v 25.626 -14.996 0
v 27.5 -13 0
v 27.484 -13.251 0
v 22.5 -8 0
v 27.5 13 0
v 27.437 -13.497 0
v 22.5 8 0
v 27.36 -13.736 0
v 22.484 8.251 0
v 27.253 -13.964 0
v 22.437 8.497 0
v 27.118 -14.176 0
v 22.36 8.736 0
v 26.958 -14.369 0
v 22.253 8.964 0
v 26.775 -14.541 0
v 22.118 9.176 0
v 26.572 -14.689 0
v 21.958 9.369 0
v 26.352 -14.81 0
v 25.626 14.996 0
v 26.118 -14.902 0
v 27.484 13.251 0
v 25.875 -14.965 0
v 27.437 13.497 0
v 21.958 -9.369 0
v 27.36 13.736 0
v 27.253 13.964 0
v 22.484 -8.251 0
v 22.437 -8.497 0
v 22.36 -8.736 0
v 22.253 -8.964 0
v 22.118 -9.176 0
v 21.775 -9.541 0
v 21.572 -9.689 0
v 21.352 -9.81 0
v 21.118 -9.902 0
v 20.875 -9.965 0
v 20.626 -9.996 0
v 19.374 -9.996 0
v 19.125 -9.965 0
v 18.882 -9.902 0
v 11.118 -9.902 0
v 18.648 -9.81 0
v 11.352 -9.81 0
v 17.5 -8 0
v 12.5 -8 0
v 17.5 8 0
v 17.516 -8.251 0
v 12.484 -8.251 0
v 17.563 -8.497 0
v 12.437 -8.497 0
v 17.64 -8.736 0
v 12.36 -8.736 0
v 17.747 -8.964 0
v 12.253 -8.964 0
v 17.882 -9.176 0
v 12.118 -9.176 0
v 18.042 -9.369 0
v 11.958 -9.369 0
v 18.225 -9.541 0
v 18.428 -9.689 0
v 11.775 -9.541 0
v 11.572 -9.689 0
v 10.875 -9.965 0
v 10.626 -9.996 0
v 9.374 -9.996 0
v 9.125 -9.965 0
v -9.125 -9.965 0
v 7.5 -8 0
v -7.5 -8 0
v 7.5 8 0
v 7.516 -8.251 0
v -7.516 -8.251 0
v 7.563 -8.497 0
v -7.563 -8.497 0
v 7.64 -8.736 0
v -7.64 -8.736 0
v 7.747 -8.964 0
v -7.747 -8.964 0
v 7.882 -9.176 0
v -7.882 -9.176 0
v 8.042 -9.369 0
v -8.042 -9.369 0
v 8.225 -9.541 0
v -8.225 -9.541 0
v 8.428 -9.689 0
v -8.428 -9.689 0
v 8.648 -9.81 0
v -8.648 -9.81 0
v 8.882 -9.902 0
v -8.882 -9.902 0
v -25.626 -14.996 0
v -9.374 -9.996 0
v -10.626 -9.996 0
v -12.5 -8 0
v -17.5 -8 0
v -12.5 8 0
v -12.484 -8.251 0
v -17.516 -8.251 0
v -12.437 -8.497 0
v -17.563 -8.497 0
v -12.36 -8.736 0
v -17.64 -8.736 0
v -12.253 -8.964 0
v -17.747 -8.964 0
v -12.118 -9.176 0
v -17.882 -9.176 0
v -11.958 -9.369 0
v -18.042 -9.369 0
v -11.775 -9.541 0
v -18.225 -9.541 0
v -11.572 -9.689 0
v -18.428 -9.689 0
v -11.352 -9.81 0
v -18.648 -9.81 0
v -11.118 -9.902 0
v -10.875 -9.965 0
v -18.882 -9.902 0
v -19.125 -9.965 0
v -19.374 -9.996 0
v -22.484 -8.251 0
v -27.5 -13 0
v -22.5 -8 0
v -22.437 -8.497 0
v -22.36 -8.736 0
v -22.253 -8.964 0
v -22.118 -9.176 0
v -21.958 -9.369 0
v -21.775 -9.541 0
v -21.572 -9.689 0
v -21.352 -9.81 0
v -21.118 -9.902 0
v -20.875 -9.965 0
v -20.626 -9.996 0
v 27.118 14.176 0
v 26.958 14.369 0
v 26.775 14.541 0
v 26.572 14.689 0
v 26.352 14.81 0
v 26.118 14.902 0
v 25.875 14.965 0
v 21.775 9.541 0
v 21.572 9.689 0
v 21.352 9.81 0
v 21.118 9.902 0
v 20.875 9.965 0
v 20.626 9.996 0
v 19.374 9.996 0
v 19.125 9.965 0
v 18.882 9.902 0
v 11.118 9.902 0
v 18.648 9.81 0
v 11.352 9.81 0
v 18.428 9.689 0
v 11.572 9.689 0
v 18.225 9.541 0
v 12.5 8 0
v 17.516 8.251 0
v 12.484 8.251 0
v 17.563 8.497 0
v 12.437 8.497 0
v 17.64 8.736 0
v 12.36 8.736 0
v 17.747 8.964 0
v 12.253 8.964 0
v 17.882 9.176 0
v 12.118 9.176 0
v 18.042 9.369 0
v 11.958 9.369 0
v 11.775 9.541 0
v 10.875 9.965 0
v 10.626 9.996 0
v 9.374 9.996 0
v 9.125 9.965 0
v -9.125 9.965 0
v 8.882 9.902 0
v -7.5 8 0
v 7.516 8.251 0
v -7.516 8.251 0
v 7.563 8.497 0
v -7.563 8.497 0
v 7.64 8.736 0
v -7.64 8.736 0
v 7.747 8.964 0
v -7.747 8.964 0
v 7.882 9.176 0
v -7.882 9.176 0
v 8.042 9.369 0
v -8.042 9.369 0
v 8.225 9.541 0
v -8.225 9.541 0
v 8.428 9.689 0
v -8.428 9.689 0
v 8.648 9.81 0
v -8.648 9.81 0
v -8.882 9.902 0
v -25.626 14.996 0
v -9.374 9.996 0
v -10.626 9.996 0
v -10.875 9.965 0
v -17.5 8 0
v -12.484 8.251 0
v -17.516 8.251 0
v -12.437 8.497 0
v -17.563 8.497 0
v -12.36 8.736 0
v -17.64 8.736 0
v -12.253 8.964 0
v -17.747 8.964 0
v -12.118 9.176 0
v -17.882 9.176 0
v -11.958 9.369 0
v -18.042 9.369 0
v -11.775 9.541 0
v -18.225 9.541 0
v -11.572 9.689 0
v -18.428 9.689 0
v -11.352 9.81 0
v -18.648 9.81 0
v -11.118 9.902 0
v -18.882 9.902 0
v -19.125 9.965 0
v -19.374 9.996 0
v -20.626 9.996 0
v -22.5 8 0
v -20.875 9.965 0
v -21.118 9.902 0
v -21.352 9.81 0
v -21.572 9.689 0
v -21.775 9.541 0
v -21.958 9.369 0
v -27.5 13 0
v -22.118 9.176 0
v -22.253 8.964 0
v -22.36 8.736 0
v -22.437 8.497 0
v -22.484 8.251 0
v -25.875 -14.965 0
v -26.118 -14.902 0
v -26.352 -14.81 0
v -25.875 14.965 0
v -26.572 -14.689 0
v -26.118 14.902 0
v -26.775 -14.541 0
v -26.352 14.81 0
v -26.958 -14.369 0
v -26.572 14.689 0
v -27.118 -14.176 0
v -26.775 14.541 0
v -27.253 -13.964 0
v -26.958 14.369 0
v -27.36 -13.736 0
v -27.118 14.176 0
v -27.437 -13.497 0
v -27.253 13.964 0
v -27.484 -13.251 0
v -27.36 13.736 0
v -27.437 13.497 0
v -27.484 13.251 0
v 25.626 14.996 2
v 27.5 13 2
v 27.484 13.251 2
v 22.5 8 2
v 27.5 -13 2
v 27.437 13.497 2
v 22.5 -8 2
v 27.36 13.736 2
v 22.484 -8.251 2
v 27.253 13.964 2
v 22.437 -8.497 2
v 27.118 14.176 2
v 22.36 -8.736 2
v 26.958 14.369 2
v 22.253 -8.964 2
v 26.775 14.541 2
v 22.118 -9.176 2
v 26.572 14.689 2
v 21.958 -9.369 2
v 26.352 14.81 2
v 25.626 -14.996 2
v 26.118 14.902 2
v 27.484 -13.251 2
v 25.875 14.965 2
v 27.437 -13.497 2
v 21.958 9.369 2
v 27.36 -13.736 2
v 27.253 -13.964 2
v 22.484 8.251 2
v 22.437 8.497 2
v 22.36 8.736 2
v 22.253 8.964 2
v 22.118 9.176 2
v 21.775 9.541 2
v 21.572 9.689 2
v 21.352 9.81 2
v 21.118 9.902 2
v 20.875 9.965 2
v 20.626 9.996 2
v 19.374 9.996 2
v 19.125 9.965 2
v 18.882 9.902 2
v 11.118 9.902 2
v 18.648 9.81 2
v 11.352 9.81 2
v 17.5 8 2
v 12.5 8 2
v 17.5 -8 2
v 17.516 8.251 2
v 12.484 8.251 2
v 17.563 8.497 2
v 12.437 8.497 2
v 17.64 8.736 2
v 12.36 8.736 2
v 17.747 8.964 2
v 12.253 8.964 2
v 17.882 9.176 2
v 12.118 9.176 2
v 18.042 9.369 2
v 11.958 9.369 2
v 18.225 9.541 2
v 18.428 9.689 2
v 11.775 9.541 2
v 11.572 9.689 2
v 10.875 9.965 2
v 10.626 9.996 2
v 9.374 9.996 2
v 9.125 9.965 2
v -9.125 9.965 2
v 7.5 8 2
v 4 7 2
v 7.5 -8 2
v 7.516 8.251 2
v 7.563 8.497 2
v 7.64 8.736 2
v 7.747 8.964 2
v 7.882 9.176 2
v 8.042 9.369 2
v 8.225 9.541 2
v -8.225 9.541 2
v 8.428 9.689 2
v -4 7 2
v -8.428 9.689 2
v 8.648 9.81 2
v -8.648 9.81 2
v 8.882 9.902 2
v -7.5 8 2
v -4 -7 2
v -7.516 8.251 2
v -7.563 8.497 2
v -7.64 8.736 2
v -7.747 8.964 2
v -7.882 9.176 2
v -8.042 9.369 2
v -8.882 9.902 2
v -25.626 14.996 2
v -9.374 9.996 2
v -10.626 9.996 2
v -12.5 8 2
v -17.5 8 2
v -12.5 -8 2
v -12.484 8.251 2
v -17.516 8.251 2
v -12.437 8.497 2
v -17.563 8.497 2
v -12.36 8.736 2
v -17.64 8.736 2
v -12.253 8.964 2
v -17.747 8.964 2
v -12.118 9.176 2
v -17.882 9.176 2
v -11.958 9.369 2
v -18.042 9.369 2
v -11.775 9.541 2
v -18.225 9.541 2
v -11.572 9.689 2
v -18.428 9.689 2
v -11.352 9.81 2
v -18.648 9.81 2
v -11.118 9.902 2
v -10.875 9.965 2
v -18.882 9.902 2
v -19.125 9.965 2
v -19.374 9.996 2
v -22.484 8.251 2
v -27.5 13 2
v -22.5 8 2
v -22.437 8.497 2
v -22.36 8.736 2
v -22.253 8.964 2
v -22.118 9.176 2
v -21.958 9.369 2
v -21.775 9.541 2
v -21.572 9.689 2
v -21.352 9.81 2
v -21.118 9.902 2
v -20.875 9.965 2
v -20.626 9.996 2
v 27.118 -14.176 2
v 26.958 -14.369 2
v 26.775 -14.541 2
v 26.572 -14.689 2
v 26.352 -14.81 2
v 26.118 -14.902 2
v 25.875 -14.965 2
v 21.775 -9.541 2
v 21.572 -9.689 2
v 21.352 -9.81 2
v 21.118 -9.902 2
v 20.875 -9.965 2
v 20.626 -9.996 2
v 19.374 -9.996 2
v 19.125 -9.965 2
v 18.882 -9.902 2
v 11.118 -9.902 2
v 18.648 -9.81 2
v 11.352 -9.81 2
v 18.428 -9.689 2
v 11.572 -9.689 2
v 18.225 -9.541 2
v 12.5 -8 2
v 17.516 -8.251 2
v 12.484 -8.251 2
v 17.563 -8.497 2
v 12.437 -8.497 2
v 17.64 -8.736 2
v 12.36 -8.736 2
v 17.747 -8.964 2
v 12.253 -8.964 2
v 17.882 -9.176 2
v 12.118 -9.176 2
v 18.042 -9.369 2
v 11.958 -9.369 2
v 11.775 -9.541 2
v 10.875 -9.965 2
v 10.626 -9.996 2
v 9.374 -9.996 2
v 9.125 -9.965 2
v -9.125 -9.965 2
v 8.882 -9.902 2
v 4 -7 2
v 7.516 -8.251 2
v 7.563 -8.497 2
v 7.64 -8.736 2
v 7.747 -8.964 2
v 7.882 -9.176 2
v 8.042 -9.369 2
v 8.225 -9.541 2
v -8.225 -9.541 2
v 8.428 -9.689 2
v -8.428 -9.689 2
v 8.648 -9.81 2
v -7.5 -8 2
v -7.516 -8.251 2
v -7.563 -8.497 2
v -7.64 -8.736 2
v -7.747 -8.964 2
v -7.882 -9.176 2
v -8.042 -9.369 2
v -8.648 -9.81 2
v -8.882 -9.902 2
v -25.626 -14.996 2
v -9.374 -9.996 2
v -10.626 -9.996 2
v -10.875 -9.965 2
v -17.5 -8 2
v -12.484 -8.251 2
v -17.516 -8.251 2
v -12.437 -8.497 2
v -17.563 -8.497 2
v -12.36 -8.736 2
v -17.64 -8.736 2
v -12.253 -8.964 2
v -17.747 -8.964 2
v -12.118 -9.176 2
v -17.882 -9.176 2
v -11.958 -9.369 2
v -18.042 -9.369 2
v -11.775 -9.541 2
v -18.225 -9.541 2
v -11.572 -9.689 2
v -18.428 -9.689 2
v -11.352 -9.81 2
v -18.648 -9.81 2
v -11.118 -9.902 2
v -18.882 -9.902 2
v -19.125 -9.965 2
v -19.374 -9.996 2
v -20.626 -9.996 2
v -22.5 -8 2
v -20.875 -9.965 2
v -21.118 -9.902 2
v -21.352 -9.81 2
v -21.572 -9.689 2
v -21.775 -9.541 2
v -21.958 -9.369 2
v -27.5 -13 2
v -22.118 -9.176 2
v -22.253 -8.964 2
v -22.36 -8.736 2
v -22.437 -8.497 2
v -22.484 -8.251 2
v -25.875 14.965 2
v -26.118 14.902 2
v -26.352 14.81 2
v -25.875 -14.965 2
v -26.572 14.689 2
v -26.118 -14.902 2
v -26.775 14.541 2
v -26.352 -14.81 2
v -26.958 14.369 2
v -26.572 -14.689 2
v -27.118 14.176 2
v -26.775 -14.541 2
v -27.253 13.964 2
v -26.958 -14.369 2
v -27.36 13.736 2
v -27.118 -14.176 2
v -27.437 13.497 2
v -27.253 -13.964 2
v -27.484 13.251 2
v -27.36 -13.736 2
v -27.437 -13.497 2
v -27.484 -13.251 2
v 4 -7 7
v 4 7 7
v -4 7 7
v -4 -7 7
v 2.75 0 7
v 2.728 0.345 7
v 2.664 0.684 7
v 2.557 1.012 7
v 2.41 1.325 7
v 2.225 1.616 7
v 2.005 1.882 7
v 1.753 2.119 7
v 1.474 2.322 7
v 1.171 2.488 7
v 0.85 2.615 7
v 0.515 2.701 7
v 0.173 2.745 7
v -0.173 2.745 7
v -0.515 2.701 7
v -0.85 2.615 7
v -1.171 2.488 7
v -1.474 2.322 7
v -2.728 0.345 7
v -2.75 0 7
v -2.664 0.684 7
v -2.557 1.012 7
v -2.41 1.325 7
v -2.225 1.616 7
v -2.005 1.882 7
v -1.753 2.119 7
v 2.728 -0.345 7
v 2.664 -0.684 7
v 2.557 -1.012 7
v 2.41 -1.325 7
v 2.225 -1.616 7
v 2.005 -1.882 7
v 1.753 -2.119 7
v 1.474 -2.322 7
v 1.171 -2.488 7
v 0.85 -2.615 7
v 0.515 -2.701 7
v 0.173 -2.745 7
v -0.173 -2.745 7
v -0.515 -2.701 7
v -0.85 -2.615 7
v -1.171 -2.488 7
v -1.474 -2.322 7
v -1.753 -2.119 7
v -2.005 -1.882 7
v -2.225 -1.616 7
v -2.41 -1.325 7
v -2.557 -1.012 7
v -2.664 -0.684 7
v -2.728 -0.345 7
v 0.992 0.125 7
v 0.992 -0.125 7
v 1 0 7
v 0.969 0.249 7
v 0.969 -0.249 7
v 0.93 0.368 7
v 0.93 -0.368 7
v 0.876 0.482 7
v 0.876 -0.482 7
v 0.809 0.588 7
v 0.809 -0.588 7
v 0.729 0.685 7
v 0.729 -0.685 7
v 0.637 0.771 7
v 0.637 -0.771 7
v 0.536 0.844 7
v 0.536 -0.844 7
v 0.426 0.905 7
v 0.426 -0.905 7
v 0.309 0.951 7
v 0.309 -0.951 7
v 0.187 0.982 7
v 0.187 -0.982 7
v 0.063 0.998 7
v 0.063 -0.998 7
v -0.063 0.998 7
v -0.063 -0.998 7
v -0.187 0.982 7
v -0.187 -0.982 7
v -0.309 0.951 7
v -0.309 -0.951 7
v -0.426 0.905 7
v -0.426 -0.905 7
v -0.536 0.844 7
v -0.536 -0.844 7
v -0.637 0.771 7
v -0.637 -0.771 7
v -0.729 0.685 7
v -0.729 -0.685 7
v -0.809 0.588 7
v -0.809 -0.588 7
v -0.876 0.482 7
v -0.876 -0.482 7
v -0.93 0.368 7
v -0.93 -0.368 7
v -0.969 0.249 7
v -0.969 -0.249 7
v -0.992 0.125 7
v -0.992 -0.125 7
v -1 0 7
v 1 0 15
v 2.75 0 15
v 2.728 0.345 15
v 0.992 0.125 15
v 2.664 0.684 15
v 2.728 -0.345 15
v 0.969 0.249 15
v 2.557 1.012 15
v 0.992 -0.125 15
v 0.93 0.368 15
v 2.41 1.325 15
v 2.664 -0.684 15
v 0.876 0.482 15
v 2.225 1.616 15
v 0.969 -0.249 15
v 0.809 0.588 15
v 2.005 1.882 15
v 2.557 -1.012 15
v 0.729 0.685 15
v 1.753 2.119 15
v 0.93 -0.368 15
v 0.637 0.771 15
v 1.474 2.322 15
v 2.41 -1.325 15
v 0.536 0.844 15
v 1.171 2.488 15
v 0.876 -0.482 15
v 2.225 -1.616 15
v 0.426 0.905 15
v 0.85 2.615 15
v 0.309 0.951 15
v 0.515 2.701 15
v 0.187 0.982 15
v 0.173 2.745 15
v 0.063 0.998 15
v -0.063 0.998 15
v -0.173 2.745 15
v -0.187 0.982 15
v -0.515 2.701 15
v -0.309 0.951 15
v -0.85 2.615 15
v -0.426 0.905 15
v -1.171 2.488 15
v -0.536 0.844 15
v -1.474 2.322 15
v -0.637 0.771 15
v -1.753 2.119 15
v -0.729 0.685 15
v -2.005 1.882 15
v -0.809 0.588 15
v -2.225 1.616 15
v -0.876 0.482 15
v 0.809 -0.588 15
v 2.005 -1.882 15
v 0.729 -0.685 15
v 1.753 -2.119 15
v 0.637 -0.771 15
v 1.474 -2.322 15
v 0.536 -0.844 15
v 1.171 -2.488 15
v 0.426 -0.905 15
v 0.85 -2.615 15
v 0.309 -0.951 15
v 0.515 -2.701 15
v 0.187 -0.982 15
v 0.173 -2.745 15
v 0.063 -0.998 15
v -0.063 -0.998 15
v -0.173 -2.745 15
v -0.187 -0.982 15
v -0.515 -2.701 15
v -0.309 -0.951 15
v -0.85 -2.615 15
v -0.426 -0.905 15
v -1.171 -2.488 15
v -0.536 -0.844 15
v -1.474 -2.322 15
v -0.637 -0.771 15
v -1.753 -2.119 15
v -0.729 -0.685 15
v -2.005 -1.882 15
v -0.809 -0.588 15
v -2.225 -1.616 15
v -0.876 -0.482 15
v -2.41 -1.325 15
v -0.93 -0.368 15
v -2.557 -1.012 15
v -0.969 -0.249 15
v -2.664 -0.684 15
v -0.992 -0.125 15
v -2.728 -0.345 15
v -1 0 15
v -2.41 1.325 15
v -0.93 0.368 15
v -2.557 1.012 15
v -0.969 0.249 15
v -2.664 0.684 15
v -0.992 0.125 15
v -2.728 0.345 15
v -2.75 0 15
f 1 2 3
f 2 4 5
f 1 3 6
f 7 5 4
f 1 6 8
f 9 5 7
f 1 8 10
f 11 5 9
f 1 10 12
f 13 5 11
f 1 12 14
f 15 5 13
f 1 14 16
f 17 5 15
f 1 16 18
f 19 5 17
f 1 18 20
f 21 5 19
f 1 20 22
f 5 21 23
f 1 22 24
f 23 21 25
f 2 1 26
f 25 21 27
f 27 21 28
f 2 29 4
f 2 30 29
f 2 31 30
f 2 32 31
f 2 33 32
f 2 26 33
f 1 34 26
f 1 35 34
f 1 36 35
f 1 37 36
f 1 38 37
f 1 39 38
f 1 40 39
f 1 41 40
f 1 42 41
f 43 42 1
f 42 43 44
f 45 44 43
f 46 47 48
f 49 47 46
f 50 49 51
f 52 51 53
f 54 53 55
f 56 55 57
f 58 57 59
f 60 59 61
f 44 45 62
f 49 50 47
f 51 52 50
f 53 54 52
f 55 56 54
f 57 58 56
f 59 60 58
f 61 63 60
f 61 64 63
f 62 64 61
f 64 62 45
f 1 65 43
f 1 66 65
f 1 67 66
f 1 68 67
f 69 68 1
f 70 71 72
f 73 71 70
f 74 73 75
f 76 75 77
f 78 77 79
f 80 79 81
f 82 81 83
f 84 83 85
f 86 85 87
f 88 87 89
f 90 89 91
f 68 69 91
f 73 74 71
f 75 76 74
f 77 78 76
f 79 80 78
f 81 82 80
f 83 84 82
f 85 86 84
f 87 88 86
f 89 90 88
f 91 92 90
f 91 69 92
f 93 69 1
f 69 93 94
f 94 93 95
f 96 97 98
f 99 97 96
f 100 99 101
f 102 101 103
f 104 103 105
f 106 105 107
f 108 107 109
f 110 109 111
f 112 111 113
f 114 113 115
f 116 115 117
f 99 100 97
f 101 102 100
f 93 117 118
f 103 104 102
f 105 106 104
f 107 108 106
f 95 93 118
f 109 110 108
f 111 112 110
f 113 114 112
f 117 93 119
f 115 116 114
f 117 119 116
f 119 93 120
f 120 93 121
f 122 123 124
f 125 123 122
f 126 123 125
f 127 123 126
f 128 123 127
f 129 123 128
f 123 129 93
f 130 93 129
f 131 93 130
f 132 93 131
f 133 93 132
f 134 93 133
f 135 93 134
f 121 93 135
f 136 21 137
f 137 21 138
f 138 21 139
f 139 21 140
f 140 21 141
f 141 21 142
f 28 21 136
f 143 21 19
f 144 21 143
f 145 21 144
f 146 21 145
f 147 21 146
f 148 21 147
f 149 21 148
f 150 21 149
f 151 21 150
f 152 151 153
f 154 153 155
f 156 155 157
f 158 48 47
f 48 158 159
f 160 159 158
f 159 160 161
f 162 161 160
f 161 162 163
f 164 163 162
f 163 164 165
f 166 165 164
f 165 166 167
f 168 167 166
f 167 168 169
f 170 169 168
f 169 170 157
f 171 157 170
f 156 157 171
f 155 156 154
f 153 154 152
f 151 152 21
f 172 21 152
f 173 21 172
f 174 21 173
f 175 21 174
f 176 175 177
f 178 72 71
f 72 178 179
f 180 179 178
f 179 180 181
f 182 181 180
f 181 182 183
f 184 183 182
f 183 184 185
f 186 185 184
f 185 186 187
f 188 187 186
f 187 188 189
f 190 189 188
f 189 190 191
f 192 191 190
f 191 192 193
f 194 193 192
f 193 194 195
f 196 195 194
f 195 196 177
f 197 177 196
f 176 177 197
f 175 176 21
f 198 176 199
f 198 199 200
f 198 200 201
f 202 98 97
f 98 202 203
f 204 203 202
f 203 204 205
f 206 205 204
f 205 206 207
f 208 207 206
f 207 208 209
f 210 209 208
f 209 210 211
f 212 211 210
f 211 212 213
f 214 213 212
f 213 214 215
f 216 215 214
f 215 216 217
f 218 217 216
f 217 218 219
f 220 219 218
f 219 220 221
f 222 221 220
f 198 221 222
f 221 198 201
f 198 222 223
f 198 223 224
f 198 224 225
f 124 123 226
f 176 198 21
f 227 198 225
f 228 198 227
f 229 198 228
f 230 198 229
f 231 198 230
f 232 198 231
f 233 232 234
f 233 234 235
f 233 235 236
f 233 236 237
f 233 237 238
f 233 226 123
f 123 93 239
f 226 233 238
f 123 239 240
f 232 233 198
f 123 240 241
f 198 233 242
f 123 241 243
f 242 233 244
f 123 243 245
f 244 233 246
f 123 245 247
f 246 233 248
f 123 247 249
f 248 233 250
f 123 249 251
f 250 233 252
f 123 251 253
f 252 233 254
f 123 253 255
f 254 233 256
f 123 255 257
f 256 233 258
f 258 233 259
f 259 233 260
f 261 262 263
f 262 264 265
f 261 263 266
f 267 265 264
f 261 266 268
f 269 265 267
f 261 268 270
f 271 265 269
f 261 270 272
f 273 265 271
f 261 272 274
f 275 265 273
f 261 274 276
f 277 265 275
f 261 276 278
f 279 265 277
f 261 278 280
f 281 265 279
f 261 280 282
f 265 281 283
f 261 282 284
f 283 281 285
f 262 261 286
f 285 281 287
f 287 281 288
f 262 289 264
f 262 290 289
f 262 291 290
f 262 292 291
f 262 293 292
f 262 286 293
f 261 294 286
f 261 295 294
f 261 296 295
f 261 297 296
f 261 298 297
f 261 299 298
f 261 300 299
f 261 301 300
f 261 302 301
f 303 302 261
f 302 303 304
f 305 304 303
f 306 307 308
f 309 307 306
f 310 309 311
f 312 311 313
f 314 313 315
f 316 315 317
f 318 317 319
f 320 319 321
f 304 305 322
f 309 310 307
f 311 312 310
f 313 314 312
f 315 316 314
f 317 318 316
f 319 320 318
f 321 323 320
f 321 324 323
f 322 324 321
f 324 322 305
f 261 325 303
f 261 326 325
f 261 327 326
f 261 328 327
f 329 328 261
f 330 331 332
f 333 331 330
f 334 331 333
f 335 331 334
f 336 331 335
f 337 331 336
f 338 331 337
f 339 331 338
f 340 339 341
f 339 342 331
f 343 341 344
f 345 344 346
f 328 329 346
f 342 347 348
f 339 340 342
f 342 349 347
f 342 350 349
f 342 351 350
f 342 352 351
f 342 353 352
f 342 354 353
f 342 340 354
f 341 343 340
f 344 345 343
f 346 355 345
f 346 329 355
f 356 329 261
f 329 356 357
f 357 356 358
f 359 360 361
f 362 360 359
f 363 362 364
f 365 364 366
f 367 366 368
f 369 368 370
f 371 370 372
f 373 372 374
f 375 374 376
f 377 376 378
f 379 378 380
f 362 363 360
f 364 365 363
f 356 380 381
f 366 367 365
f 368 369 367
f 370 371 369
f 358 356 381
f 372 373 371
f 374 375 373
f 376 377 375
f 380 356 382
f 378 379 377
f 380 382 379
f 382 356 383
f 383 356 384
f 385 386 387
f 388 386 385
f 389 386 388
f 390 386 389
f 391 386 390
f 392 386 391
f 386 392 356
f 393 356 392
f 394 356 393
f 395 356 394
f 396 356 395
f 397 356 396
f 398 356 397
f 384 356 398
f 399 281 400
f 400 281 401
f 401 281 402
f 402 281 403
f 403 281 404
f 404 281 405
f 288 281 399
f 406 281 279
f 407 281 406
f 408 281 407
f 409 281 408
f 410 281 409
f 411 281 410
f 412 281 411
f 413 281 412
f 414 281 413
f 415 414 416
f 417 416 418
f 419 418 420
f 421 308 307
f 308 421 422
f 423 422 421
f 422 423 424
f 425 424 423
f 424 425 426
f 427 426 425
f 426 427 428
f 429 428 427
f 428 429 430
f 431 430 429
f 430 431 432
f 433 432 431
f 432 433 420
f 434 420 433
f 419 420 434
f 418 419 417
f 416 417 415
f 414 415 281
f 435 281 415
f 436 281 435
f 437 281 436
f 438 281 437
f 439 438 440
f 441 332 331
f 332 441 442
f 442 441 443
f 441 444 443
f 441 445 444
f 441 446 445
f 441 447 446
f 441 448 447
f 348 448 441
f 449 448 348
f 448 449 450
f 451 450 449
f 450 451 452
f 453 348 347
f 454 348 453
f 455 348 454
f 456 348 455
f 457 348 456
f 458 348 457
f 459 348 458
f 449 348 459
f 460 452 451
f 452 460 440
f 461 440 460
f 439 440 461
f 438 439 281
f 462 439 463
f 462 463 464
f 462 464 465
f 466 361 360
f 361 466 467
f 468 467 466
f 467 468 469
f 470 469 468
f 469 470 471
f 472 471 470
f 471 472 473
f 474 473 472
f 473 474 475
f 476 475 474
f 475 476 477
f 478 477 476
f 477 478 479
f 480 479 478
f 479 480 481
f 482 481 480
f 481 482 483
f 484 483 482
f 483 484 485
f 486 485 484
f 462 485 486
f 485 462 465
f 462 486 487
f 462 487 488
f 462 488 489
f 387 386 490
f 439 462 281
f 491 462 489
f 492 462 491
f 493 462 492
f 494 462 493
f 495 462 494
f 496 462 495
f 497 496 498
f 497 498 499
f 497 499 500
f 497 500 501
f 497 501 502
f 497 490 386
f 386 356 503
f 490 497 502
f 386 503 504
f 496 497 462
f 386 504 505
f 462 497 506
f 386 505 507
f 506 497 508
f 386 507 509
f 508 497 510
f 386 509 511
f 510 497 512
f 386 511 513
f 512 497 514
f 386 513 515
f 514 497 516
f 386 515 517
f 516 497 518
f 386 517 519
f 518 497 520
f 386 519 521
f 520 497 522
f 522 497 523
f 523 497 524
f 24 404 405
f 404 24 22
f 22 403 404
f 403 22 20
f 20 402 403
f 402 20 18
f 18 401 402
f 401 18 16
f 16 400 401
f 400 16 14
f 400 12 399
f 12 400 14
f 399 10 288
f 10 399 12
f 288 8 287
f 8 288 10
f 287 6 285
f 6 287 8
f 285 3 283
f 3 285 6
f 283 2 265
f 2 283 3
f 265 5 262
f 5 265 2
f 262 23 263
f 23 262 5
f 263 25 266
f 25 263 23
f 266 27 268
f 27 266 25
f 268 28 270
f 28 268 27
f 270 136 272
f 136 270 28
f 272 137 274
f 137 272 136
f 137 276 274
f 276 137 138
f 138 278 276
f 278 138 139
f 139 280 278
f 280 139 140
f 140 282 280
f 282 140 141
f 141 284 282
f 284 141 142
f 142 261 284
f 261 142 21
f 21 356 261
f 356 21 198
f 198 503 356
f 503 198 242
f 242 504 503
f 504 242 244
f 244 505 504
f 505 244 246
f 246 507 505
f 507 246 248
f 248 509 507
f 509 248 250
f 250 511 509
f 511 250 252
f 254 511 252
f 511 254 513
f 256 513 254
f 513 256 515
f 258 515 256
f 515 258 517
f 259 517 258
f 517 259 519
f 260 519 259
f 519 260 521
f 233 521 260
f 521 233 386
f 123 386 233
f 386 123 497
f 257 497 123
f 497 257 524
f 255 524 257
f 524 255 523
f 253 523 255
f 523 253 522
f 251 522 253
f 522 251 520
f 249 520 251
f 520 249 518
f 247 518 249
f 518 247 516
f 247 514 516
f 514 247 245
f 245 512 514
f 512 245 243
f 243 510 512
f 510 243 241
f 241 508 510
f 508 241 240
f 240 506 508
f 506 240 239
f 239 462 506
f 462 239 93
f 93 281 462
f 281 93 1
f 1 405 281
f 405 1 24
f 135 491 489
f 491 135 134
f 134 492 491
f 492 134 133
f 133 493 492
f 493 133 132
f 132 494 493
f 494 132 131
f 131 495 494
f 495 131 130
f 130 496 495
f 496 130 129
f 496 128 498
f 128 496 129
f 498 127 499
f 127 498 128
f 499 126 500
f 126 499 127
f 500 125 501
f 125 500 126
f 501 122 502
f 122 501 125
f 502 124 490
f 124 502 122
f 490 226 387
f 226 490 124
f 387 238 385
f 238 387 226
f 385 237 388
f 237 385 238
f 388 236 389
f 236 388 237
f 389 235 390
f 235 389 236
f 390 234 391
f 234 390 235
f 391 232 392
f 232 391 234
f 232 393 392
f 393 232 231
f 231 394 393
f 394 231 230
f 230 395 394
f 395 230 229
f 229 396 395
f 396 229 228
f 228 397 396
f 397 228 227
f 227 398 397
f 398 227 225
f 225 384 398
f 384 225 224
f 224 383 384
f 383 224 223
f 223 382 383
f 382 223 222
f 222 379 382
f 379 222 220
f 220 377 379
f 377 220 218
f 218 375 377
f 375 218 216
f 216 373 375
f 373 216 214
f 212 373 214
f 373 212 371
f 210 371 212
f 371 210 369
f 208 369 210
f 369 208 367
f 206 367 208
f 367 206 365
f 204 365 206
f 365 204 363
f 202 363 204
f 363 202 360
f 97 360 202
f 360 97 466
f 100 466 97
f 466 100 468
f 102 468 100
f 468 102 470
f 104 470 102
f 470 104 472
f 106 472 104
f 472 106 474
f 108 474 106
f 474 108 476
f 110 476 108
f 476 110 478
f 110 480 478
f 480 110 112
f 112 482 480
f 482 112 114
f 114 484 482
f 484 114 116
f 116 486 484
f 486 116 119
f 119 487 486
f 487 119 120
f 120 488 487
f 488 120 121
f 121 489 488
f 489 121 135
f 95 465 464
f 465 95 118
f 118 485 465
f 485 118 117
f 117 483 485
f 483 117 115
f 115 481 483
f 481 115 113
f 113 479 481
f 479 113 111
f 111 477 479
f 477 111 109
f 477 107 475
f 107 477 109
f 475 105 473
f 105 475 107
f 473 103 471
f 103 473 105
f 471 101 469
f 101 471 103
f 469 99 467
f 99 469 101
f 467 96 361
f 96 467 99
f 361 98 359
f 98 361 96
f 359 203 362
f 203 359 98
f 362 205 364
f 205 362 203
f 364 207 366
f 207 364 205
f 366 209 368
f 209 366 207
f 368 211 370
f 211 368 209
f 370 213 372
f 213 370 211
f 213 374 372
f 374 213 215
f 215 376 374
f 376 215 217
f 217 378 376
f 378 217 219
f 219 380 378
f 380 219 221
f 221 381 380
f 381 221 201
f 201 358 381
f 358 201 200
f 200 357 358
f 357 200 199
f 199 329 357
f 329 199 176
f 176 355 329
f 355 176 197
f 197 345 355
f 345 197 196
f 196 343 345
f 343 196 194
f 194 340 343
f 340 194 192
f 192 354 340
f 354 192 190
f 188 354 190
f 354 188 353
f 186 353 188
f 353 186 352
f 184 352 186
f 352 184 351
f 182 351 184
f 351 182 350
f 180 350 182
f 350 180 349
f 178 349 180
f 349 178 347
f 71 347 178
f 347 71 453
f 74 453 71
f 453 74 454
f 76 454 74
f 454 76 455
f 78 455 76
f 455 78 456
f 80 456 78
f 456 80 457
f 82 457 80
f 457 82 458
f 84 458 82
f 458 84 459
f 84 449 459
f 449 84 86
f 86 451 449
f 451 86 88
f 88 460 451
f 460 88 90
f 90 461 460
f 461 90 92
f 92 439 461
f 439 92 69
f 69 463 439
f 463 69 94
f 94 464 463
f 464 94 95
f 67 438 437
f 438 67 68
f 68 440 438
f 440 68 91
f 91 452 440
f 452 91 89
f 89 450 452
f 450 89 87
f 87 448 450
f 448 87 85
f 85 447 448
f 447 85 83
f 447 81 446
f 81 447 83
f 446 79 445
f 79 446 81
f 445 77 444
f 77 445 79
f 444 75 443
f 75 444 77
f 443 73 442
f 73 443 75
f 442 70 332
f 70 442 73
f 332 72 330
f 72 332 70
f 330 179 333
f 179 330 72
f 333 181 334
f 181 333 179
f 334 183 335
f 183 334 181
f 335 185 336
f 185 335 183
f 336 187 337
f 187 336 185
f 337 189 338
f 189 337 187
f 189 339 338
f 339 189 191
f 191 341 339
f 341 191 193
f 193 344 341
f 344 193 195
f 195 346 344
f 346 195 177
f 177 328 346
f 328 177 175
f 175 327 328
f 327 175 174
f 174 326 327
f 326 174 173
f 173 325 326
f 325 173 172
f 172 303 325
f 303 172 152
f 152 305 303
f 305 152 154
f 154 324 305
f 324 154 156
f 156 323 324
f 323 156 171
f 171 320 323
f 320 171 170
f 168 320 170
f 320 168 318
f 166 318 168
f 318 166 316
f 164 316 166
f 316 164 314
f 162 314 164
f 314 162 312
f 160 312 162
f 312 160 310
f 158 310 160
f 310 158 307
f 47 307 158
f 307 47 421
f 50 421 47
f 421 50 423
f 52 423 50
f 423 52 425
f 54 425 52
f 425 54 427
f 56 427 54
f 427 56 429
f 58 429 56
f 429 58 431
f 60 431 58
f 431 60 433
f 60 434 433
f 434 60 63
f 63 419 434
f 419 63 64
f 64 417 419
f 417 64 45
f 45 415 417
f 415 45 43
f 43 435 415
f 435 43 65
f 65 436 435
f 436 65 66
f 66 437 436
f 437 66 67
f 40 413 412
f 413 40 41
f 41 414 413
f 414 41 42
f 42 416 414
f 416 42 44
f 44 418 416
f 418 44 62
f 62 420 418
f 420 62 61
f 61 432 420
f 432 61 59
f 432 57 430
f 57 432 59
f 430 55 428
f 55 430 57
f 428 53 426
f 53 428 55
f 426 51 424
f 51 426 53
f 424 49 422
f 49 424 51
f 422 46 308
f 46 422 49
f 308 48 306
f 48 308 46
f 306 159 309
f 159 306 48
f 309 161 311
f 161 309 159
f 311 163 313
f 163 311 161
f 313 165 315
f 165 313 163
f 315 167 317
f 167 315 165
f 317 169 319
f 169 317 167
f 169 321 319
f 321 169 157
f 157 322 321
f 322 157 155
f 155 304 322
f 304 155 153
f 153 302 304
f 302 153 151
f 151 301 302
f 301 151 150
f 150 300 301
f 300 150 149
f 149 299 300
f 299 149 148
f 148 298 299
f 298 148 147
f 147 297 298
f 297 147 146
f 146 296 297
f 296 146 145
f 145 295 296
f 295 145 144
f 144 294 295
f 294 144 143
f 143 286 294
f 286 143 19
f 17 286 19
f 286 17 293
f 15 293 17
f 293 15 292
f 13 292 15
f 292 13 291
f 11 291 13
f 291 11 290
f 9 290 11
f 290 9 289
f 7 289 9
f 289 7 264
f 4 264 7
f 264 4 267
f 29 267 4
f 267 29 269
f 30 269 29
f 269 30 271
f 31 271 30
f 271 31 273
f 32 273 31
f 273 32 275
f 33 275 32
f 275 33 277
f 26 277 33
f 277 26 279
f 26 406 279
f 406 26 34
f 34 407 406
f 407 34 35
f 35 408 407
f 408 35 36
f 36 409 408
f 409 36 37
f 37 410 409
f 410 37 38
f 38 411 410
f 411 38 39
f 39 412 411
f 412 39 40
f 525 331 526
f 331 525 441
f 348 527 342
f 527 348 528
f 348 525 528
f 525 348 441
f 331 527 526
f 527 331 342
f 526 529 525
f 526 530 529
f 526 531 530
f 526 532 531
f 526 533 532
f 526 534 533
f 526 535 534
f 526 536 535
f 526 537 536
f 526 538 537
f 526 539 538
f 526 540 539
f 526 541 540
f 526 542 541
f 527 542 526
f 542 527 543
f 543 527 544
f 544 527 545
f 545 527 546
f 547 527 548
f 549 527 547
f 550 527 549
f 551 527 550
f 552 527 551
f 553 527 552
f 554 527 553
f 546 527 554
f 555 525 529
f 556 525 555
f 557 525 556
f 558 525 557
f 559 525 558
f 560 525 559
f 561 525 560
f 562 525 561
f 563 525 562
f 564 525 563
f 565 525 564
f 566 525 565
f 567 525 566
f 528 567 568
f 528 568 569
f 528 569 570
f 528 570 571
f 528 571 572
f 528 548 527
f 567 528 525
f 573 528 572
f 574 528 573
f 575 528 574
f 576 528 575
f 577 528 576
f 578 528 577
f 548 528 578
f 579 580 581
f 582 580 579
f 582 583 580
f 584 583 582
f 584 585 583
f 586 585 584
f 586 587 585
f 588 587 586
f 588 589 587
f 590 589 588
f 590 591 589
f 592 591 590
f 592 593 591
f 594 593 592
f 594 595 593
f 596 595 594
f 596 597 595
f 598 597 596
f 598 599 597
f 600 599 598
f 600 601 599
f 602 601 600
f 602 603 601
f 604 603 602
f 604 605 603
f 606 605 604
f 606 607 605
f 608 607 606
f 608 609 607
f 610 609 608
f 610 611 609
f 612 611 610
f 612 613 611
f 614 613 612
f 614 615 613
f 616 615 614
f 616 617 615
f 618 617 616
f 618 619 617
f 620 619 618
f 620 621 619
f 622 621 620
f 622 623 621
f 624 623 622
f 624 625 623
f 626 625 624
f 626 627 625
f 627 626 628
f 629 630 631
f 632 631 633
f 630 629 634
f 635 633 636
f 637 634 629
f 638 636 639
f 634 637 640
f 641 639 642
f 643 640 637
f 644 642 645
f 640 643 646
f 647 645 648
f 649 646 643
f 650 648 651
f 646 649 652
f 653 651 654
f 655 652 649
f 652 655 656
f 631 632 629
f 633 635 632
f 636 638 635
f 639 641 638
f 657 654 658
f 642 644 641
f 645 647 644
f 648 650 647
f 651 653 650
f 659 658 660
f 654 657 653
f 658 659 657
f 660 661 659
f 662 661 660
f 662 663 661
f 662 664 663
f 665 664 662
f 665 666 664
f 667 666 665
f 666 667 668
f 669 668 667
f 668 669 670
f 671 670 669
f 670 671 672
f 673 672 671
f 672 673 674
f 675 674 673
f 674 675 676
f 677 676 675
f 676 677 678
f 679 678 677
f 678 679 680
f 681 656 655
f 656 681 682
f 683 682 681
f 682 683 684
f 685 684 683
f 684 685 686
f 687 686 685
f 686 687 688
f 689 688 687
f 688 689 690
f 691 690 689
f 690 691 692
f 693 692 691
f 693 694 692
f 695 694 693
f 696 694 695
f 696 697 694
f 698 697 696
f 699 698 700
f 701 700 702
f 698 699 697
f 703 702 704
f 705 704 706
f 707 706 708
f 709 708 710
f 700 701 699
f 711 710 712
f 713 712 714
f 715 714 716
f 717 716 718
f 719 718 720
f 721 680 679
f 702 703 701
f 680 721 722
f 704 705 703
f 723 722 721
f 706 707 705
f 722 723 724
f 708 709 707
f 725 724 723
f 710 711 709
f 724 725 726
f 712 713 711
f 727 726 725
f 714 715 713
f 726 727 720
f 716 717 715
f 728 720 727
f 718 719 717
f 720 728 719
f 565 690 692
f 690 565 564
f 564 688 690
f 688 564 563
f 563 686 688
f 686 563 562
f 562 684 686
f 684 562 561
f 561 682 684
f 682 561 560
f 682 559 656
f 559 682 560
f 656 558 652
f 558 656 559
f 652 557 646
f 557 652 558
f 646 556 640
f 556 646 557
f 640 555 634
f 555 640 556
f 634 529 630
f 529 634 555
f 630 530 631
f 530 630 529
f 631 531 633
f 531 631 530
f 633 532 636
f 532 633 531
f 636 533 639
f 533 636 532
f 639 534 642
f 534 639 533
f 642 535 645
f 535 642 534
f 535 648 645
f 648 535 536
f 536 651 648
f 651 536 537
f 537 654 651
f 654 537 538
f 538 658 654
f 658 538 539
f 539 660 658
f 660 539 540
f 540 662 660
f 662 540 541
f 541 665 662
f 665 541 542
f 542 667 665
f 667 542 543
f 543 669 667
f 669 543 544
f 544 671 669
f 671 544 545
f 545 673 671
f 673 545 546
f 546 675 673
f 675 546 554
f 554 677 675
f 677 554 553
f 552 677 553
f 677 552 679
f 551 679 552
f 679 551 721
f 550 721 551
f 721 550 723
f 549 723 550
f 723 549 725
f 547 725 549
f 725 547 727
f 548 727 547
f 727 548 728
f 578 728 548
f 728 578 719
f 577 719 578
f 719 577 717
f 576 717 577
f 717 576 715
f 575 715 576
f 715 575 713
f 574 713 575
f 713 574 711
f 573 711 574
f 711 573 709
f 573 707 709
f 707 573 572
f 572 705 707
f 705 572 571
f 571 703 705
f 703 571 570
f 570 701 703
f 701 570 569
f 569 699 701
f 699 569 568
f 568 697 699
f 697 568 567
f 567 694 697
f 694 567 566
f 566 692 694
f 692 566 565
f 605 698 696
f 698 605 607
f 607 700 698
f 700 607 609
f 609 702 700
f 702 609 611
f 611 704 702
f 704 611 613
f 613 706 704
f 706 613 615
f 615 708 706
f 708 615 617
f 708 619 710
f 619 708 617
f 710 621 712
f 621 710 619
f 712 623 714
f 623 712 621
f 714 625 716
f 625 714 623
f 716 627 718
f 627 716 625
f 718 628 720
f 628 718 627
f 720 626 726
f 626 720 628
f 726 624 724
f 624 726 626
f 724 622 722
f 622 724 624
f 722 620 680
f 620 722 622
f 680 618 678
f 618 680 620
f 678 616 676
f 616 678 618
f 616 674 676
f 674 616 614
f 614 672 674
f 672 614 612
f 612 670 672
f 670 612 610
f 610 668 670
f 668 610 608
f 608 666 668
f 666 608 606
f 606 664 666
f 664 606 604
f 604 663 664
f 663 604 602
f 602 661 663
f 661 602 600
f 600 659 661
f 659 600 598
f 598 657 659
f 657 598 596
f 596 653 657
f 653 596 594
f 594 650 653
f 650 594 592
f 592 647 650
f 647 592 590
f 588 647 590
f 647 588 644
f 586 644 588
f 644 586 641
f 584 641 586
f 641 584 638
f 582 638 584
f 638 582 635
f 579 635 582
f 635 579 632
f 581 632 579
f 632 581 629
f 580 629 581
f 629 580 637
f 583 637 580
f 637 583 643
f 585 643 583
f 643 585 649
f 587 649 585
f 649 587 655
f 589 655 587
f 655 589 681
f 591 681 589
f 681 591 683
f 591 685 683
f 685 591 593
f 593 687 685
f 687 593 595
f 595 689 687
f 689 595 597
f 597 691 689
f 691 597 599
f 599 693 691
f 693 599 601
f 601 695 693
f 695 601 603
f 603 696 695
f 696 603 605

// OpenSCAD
$fn=50;
batteryMount();

module batteryMount()
{
	linear_extrude(2) {
		// battery plate
		difference() {
			roundedSquare(55, 30, 2);
			
			for (x=[-20, -10, 10, 20])
			translate([x, 0, 0])
			roundedSquare(5, 20, 2);
		}
	}

	// Center protruding mount
	linear_extrude(2 + 5)
		square([8,14], center=true);

	// circluar mount plug
	linear_extrude(2 + 5 + 8)
	difference() {
		circle(d=5.5);
		circle(d=2);
	}
}

module roundedSquare(x, y, r)
{
	hull()
	for (i=[0,1], j=[0,1])
	mirror([i, 0, 0])
	mirror([0, j, 0])
	translate([x/2 - r, y/2 - r])
		circle(r=r);
}
